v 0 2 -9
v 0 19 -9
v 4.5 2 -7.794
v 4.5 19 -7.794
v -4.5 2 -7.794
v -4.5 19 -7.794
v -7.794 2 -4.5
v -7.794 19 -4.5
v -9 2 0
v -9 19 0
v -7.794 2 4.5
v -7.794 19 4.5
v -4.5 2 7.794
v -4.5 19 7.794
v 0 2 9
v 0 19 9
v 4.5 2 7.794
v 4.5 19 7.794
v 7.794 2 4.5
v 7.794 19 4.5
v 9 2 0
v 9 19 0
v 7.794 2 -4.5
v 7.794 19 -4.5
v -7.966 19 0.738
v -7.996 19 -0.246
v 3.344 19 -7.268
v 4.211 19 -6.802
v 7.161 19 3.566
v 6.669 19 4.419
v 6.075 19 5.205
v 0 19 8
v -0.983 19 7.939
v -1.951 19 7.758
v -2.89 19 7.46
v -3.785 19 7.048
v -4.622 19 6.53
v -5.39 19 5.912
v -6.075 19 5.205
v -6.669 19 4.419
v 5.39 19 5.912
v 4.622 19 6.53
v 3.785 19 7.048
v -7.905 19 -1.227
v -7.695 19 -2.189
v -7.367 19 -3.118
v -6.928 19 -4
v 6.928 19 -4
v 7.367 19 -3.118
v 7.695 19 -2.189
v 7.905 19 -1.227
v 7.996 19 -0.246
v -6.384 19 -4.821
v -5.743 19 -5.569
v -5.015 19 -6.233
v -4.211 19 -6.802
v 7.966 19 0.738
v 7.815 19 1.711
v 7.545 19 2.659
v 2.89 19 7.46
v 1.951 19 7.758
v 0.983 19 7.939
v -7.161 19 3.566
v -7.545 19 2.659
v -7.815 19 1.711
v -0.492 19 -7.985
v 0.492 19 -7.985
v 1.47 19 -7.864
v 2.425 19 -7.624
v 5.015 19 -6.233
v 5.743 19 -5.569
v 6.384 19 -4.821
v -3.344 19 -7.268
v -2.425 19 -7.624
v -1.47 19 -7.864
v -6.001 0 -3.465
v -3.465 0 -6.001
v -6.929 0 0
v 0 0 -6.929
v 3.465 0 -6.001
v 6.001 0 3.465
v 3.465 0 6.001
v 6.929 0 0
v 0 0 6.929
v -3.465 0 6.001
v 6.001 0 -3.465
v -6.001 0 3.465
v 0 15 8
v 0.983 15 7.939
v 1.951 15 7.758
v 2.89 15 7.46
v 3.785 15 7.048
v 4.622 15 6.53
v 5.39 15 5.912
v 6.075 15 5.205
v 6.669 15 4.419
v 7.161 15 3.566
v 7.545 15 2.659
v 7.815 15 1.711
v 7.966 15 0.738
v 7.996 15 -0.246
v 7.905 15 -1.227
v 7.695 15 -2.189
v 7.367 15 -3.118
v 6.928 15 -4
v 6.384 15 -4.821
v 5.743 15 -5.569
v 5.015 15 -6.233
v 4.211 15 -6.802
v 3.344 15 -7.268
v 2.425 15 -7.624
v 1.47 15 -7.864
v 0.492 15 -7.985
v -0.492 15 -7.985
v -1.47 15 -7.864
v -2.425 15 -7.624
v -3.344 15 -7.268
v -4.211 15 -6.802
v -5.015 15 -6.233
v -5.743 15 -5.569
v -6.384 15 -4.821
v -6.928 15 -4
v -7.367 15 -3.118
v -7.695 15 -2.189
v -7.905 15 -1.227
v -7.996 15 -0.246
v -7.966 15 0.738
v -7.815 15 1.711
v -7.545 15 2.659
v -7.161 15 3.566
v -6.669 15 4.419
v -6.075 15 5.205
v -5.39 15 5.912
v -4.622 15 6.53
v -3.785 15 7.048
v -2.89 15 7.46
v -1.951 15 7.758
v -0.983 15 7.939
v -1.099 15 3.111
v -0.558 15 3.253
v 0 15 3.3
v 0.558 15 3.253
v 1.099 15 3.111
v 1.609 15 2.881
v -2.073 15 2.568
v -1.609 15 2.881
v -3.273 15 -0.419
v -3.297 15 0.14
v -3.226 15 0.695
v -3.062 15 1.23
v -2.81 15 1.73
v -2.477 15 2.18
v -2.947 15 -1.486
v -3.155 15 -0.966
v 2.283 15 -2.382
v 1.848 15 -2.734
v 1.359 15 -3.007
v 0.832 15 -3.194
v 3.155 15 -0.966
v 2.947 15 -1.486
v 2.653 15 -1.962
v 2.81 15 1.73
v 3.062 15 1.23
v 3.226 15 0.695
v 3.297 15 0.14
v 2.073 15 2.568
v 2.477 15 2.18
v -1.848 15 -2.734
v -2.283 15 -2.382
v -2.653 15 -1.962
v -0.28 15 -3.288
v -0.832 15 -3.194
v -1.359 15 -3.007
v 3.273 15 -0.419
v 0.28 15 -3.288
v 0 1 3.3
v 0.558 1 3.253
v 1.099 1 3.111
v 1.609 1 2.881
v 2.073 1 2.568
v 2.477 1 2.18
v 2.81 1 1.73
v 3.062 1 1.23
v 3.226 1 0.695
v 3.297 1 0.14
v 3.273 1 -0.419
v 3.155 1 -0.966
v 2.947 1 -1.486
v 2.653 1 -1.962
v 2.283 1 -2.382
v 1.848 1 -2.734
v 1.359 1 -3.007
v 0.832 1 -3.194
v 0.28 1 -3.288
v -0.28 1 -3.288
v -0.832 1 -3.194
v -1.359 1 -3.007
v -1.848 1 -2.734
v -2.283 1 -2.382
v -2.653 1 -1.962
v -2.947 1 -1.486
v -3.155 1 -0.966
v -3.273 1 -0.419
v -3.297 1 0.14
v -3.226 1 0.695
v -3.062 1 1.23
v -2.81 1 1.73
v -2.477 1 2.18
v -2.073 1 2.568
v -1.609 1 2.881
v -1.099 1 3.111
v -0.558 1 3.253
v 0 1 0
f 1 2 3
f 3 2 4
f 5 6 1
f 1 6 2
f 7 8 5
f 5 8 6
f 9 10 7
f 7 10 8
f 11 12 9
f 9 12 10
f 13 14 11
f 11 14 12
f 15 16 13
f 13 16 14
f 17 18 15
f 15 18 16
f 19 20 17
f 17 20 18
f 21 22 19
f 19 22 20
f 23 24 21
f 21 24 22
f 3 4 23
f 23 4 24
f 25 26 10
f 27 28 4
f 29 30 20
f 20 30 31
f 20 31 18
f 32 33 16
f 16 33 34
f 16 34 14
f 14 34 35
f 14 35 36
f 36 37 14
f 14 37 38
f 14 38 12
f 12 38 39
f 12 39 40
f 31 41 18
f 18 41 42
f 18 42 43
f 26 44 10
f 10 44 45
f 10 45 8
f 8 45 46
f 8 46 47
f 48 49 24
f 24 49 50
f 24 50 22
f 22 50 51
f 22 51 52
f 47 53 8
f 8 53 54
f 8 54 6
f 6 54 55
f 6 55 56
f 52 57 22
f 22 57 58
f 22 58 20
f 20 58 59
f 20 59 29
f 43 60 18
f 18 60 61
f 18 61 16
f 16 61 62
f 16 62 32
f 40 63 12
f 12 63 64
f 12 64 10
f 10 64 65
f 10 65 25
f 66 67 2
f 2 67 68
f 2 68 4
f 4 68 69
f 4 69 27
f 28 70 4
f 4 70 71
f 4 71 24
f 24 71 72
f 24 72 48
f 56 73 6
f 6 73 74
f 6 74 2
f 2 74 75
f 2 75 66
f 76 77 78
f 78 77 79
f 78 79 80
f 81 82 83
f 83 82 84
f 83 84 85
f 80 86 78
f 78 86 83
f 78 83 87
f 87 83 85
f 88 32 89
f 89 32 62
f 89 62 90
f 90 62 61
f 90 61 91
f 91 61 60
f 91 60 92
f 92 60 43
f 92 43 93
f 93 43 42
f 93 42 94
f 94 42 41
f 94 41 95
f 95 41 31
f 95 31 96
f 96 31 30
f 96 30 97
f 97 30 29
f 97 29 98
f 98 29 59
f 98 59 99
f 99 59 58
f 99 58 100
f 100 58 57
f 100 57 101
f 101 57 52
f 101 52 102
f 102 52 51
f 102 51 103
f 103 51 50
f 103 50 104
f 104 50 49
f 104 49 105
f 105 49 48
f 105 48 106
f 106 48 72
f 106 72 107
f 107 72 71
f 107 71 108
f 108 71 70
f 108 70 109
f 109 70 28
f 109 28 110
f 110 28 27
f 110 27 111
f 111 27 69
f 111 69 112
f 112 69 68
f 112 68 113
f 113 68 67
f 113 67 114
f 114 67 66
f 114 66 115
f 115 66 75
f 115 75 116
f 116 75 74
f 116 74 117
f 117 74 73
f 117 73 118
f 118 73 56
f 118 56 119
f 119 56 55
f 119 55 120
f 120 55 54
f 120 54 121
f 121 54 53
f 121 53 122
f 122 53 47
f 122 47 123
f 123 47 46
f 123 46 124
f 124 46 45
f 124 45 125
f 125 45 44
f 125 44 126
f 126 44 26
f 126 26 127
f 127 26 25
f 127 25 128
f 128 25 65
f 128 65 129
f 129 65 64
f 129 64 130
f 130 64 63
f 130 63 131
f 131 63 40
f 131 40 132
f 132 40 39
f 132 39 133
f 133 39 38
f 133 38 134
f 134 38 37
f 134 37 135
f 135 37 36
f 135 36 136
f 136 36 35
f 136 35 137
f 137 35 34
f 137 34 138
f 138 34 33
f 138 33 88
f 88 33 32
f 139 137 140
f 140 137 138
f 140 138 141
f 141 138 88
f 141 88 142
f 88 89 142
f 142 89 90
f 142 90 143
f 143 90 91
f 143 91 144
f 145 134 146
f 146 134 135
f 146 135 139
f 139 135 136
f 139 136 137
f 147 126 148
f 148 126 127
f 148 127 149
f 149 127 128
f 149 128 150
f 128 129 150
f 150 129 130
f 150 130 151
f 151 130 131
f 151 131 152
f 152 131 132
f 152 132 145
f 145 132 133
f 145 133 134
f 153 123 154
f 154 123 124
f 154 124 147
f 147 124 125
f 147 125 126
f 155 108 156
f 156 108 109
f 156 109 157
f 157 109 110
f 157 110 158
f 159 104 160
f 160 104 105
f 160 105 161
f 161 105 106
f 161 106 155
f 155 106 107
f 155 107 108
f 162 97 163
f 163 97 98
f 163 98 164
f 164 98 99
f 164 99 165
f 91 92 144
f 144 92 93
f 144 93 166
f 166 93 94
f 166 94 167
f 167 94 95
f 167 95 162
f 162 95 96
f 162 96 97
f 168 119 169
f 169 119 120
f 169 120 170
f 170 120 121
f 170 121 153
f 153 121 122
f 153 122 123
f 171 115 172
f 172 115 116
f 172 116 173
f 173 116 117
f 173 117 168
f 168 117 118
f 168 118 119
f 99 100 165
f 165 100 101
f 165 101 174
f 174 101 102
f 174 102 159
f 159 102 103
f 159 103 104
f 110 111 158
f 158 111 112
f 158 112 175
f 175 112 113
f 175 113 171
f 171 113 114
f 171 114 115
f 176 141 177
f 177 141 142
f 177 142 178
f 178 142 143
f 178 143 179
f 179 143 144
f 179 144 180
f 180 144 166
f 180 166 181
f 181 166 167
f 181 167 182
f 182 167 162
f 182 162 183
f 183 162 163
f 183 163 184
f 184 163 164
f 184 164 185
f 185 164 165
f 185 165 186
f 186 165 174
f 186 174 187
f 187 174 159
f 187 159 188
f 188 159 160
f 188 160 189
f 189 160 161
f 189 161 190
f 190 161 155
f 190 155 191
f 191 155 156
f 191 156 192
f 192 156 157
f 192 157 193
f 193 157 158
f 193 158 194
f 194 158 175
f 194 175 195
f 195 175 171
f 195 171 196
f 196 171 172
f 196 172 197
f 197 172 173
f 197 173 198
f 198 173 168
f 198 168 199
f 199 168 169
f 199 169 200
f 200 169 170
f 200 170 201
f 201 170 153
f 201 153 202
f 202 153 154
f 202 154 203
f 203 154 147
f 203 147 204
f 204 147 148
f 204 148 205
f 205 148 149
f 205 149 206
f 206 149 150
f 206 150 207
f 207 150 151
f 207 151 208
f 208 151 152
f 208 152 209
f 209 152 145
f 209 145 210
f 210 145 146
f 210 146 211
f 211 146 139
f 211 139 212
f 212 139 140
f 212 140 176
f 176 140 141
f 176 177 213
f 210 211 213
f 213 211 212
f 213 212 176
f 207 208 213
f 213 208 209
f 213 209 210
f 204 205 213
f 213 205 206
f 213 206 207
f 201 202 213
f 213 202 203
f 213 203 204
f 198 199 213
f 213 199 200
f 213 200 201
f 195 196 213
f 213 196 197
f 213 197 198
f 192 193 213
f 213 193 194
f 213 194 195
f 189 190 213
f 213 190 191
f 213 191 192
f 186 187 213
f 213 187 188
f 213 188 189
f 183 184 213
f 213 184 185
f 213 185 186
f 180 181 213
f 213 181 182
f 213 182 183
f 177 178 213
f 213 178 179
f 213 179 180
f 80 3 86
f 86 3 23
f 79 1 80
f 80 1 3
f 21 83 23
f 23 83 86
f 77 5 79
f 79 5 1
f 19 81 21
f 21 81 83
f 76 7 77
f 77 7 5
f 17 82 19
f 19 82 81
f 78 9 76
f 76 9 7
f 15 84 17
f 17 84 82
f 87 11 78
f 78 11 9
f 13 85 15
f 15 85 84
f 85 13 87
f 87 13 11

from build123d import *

# Parameters (mm, degrees)
BOSS_EXTRUDE1_DEPTH = 19
SKETCH2_R           = 8
CUT_EXTRUDE1_DEPTH  = 4
SKETCH3_R           = 3.3
CUT_EXTRUDE2_DEPTH  = 14
CHAMFER1_SIZE       = 2


with BuildPart() as part:
    # Sketch1 → Boss-Extrude1 (new body)
    with BuildSketch(Plane(origin=(0, 0, 0), x_dir=(1, 0, 0), z_dir=(0, 1, 0))):
        Polygon((0, 9), (-4.5, 7.794228634), (-7.794228634, 4.5), (-9, 0), (-7.794228634, -4.5), (-4.5, -7.794228634), (0, -9), (4.5, -7.794228634), (7.794228634, -4.5), (9, 0), (7.794228634, 4.5), (4.5, 7.794228634), align=None)
    extrude(amount=BOSS_EXTRUDE1_DEPTH)

    # Sketch2 → Cut-Extrude1 (cut)
    with BuildSketch(Plane(origin=(0, 19, 0), x_dir=(1, 0, 0), z_dir=(0, 1, 0))):
        Circle(SKETCH2_R)
    extrude(amount=-CUT_EXTRUDE1_DEPTH, mode=Mode.SUBTRACT)

    # Sketch3 → Cut-Extrude2 (cut)
    with BuildSketch(Plane(origin=(0, 15, 0), x_dir=(1, 0, 0), z_dir=(0, 1, 0))):
        Circle(SKETCH3_R)
    extrude(amount=-CUT_EXTRUDE2_DEPTH, mode=Mode.SUBTRACT)

    # Chamfer1
    chamfer1_edges = [part.edges().sort_by_distance(p)[0] for p in [
        (6.147114317, 0, -6.147114317),
        (8.397114317, 0, -2.25),
        (8.397114317, 0, 2.25),
        (6.147114317, 0, 6.147114317),
        (2.25, 0, 8.397114317),
        (-2.25, 0, 8.397114317),
        (-6.147114317, 0, 6.147114317),
        (-8.397114317, 0, 2.25),
        (-8.397114317, 0, -2.25),
        (-6.147114317, 0, -6.147114317),
        (-2.25, 0, -8.397114317),
        (2.25, 0, -8.397114317),
    ]]
    chamfer(chamfer1_edges, length=CHAMFER1_SIZE)


solid = part.part
